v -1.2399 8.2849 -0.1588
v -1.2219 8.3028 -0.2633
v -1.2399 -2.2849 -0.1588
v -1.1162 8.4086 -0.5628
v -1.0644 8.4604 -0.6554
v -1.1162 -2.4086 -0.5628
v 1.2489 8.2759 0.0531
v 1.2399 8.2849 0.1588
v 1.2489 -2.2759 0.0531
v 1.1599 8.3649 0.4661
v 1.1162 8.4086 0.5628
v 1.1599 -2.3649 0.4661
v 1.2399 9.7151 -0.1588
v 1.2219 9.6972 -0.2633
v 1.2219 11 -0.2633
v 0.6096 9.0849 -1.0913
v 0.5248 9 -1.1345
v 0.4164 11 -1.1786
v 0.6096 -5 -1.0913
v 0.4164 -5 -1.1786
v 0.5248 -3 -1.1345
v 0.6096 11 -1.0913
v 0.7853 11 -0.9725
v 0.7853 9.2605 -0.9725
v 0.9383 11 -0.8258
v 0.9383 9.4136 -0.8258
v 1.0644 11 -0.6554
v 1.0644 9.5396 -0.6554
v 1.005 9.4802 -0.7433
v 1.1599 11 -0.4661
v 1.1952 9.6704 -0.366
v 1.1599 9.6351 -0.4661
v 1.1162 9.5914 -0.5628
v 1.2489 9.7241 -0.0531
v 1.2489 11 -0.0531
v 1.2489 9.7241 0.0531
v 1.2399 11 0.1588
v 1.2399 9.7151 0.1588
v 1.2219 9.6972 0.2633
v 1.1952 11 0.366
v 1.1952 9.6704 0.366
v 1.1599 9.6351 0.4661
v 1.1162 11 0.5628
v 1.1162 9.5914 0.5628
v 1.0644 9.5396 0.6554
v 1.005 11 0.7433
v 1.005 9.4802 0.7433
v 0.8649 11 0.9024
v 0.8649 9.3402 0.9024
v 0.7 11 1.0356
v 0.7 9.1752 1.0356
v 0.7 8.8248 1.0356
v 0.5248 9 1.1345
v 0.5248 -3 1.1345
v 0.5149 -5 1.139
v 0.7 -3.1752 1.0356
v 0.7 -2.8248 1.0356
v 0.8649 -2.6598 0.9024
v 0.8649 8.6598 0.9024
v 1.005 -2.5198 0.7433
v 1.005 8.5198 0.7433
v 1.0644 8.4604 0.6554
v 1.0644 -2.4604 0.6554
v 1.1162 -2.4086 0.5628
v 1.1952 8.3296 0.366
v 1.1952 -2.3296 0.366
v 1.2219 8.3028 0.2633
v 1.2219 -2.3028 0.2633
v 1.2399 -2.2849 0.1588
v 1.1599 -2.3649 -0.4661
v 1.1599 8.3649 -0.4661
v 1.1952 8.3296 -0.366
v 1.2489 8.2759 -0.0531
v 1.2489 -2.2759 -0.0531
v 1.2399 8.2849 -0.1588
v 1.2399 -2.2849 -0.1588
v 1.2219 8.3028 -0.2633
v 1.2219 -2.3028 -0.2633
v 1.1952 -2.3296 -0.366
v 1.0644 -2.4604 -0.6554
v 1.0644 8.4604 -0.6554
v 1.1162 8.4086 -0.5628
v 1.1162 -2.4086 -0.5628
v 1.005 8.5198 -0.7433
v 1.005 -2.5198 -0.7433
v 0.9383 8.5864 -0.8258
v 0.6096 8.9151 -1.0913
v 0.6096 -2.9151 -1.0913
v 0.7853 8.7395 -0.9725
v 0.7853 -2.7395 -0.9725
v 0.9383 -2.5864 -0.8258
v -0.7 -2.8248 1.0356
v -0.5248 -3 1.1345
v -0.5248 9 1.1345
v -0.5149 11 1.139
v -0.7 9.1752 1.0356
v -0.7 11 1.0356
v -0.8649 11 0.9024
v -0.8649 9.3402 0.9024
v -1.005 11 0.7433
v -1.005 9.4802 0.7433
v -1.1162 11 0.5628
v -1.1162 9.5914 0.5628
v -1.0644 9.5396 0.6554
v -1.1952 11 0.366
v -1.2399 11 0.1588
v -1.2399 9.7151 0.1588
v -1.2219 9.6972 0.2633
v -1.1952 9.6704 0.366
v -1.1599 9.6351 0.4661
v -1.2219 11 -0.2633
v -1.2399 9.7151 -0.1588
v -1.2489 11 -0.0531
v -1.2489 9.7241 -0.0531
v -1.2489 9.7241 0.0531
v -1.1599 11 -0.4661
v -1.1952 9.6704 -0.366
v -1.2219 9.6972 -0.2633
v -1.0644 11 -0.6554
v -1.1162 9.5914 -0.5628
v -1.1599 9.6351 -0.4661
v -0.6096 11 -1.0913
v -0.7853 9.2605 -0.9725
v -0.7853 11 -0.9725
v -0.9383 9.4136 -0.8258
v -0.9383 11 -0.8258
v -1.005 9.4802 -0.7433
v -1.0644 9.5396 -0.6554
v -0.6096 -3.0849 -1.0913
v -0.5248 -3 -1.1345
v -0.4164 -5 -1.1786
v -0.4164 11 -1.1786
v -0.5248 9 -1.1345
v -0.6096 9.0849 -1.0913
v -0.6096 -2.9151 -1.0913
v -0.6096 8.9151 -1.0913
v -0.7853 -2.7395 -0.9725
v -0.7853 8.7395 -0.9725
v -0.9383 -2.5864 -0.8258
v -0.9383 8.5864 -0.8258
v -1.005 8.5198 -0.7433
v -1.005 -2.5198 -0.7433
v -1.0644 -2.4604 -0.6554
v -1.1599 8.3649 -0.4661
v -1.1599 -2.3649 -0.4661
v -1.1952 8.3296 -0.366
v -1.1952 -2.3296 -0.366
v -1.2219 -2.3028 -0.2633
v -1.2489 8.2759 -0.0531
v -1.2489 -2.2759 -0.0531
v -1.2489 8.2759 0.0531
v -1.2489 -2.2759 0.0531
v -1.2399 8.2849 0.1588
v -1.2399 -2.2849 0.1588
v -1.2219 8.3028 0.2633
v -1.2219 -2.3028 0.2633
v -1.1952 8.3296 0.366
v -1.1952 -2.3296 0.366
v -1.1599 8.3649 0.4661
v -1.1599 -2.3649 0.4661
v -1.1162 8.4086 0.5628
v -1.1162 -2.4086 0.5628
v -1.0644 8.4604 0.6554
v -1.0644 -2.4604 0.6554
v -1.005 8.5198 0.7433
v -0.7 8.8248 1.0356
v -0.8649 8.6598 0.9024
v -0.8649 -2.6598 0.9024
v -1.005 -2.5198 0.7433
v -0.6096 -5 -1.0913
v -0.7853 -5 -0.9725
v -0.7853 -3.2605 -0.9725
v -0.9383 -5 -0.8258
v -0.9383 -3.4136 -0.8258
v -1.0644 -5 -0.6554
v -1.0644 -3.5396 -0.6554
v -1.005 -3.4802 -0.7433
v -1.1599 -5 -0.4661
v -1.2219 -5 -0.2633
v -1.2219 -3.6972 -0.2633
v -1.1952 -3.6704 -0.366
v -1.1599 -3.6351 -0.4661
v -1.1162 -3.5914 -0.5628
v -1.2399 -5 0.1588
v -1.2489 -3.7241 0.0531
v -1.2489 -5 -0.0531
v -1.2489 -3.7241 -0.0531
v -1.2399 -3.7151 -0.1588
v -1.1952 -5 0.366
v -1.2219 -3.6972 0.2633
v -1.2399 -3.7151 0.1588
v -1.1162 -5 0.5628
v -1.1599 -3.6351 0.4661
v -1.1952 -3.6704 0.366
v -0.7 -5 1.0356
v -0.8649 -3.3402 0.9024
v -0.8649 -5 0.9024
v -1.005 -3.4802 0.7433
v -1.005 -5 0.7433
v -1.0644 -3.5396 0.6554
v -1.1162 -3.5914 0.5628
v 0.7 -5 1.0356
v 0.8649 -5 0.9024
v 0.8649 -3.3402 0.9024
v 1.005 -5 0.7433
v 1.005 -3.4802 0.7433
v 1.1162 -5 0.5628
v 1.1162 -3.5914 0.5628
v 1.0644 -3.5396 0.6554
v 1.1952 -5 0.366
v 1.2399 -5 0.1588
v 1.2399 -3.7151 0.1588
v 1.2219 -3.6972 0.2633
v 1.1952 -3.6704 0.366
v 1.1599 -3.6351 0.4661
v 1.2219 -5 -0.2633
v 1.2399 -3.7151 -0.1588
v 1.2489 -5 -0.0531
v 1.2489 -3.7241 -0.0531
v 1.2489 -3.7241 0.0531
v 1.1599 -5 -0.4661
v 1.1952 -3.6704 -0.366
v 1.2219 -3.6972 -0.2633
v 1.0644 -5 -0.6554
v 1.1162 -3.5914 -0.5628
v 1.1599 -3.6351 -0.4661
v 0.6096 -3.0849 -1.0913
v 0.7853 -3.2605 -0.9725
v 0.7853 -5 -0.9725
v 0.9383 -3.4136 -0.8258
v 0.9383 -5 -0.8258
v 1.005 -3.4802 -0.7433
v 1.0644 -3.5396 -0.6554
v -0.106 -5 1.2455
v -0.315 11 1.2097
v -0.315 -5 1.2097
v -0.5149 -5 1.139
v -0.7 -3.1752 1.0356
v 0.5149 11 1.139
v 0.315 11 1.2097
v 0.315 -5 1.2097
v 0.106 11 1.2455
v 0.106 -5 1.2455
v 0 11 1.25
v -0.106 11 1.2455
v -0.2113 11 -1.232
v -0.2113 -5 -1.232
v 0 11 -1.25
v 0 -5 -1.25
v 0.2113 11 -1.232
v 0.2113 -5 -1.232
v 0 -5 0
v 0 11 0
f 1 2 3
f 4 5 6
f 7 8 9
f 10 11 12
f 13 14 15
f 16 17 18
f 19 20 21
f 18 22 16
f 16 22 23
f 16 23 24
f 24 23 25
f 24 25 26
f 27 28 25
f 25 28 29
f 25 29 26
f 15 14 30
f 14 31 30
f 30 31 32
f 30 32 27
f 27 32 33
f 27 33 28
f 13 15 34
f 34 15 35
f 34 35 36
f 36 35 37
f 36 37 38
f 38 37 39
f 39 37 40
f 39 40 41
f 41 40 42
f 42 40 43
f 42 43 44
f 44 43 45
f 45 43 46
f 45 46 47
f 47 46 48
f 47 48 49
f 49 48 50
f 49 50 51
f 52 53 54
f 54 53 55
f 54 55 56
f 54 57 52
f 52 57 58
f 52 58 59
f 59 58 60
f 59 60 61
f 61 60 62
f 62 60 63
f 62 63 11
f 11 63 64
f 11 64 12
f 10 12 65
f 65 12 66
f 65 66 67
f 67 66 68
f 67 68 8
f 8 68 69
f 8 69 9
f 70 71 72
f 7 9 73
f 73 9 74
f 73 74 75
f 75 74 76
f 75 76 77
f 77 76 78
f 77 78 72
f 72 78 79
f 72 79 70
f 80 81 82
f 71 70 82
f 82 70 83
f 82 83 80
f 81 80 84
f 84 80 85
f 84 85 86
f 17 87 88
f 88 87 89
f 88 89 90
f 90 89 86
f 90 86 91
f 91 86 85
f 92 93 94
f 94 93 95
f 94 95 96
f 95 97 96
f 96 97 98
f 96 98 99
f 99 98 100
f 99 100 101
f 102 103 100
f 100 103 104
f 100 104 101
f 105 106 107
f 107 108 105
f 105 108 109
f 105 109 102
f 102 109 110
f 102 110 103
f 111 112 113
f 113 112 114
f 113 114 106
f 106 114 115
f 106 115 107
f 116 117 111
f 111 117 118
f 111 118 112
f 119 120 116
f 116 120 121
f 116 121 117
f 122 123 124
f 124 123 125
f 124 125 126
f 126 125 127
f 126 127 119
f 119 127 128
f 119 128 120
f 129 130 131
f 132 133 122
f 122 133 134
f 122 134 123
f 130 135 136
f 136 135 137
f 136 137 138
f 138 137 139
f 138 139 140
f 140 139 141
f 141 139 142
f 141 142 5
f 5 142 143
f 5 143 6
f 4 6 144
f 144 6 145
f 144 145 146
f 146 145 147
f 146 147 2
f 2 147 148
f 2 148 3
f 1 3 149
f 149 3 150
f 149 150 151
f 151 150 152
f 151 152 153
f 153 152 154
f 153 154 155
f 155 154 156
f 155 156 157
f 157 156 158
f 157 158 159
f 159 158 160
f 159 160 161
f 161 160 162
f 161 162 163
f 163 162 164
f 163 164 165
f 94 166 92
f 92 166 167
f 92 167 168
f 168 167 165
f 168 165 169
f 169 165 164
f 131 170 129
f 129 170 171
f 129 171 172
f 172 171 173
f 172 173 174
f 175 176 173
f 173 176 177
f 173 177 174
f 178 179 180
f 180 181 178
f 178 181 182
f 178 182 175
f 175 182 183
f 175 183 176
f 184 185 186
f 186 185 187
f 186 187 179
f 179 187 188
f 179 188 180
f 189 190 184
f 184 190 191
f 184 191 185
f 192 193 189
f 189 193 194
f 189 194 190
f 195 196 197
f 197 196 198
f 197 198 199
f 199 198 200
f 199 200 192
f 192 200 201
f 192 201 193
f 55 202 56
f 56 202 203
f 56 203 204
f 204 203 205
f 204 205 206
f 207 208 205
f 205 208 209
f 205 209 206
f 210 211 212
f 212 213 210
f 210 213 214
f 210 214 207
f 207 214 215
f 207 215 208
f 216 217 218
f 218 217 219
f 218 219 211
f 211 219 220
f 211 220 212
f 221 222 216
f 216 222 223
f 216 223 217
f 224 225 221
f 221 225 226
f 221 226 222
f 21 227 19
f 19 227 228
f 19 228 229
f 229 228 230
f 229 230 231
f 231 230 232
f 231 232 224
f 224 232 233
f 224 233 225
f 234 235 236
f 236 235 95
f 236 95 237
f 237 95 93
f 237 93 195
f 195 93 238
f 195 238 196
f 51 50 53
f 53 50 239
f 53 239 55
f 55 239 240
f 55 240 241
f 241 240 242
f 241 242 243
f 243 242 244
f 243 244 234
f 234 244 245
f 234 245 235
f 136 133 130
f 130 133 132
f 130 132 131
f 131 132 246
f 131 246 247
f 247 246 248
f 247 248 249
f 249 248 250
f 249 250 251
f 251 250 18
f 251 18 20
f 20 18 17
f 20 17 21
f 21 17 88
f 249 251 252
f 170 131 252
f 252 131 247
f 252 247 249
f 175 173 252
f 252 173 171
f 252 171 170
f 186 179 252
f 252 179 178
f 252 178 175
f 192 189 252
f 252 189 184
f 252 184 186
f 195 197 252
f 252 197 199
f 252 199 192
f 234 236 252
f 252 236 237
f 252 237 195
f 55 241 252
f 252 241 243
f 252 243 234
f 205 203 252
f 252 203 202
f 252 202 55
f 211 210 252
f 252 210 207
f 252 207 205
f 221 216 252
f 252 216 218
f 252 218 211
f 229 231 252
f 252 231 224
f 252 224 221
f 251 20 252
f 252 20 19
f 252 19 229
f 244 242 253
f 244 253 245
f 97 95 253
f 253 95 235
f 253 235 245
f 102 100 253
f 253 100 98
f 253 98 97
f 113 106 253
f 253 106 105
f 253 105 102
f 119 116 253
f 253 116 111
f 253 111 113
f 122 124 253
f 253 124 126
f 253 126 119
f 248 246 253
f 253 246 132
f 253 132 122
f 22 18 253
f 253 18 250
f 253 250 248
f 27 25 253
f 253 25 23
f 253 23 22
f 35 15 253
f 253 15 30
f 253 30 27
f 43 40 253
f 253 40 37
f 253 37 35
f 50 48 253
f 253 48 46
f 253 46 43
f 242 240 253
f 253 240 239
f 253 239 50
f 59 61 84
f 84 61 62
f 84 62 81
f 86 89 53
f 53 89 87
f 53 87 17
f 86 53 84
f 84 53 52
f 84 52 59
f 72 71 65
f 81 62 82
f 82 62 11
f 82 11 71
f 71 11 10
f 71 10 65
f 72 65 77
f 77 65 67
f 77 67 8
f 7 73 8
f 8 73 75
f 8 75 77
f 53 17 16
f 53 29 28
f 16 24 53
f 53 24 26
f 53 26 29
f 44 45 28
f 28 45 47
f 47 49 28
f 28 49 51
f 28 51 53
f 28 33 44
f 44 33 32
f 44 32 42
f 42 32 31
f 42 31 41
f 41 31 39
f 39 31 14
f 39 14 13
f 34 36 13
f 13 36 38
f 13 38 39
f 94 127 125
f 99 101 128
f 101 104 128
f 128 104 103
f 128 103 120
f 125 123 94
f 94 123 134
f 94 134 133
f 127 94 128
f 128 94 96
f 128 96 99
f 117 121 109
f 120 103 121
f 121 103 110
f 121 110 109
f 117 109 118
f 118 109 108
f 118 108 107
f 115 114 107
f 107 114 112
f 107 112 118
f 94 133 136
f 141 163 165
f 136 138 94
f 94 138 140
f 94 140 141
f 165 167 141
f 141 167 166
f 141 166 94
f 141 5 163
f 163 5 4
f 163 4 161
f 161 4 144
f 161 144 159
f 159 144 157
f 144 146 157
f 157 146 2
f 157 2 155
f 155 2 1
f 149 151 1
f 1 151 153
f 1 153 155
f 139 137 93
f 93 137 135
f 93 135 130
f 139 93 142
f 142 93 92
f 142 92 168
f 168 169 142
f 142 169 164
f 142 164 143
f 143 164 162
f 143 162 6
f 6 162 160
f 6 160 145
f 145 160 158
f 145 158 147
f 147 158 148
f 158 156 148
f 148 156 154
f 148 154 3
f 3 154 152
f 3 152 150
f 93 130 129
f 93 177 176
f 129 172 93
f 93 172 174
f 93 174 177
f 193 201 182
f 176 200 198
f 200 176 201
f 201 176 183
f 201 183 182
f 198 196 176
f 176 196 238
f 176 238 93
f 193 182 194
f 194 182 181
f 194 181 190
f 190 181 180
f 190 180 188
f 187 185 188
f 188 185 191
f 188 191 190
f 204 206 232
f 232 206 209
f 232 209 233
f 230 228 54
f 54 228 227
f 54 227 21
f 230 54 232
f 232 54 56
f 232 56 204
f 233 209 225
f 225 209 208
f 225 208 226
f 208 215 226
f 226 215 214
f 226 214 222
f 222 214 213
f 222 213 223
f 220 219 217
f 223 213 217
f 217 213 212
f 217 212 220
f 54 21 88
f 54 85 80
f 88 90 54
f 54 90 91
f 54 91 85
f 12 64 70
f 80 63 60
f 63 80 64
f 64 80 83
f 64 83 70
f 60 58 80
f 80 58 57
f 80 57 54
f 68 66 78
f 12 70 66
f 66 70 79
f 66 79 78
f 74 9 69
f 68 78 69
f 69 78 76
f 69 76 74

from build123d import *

# Parameters (mm, degrees)
SKETCH1_R               = 1.25
BOSS_EXTRUDE1_DEPTH     = 6
SKETCH2_R               = 1.25
BOSS_EXTRUDE2_DEPTH     = 5
SKETCH3_R               = 1.25
BOSS_EXTRUDE3_DEPTH     = 5
CUT_EXTRUDE1_DEPTH      = 2.25
CUT_EXTRUDE1_DEPTH_BACK = 2.25


with BuildPart() as part:
    # Sketch1 → Boss-Extrude1 (new body)
    with BuildSketch(Plane(origin=(0, 0, 0), x_dir=(1, 0, 0), z_dir=(0, 1, 0))):
        Circle(SKETCH1_R)
    extrude(amount=BOSS_EXTRUDE1_DEPTH)

    # Sketch2 → Boss-Extrude2 (add)
    with BuildSketch(Plane.XZ):
        Circle(SKETCH2_R)
    extrude(amount=BOSS_EXTRUDE2_DEPTH)

    # Sketch3 → Boss-Extrude3 (add)
    with BuildSketch(Plane(origin=(0, 6, 0), x_dir=(1, 0, 0), z_dir=(0, 1, 0))):
        Circle(SKETCH3_R)
    extrude(amount=BOSS_EXTRUDE3_DEPTH)

    # Sketch4 → Cut-Extrude1 (cut, two sides)
    with BuildSketch(Plane.XY) as cut_extrude1_sk:
        Polygon((0.524763121, 9), (1.25, 9.725236879), (1.25, 8.274763121), align=None)
        Polygon((-0.524763121, 9), (-1.25, 8.274763121), (-1.25, 9.725236879), align=None)
        Polygon((-0.524763121, -3), (-1.25, -3.725236879), (-1.25, -2.274763121), align=None)
        Polygon((0.524763121, -3), (1.25, -2.274763121), (1.25, -3.725236879), align=None)
    extrude(amount=CUT_EXTRUDE1_DEPTH, mode=Mode.SUBTRACT)
    extrude(cut_extrude1_sk.sketch, amount=-CUT_EXTRUDE1_DEPTH_BACK, mode=Mode.SUBTRACT)


solid = part.part
